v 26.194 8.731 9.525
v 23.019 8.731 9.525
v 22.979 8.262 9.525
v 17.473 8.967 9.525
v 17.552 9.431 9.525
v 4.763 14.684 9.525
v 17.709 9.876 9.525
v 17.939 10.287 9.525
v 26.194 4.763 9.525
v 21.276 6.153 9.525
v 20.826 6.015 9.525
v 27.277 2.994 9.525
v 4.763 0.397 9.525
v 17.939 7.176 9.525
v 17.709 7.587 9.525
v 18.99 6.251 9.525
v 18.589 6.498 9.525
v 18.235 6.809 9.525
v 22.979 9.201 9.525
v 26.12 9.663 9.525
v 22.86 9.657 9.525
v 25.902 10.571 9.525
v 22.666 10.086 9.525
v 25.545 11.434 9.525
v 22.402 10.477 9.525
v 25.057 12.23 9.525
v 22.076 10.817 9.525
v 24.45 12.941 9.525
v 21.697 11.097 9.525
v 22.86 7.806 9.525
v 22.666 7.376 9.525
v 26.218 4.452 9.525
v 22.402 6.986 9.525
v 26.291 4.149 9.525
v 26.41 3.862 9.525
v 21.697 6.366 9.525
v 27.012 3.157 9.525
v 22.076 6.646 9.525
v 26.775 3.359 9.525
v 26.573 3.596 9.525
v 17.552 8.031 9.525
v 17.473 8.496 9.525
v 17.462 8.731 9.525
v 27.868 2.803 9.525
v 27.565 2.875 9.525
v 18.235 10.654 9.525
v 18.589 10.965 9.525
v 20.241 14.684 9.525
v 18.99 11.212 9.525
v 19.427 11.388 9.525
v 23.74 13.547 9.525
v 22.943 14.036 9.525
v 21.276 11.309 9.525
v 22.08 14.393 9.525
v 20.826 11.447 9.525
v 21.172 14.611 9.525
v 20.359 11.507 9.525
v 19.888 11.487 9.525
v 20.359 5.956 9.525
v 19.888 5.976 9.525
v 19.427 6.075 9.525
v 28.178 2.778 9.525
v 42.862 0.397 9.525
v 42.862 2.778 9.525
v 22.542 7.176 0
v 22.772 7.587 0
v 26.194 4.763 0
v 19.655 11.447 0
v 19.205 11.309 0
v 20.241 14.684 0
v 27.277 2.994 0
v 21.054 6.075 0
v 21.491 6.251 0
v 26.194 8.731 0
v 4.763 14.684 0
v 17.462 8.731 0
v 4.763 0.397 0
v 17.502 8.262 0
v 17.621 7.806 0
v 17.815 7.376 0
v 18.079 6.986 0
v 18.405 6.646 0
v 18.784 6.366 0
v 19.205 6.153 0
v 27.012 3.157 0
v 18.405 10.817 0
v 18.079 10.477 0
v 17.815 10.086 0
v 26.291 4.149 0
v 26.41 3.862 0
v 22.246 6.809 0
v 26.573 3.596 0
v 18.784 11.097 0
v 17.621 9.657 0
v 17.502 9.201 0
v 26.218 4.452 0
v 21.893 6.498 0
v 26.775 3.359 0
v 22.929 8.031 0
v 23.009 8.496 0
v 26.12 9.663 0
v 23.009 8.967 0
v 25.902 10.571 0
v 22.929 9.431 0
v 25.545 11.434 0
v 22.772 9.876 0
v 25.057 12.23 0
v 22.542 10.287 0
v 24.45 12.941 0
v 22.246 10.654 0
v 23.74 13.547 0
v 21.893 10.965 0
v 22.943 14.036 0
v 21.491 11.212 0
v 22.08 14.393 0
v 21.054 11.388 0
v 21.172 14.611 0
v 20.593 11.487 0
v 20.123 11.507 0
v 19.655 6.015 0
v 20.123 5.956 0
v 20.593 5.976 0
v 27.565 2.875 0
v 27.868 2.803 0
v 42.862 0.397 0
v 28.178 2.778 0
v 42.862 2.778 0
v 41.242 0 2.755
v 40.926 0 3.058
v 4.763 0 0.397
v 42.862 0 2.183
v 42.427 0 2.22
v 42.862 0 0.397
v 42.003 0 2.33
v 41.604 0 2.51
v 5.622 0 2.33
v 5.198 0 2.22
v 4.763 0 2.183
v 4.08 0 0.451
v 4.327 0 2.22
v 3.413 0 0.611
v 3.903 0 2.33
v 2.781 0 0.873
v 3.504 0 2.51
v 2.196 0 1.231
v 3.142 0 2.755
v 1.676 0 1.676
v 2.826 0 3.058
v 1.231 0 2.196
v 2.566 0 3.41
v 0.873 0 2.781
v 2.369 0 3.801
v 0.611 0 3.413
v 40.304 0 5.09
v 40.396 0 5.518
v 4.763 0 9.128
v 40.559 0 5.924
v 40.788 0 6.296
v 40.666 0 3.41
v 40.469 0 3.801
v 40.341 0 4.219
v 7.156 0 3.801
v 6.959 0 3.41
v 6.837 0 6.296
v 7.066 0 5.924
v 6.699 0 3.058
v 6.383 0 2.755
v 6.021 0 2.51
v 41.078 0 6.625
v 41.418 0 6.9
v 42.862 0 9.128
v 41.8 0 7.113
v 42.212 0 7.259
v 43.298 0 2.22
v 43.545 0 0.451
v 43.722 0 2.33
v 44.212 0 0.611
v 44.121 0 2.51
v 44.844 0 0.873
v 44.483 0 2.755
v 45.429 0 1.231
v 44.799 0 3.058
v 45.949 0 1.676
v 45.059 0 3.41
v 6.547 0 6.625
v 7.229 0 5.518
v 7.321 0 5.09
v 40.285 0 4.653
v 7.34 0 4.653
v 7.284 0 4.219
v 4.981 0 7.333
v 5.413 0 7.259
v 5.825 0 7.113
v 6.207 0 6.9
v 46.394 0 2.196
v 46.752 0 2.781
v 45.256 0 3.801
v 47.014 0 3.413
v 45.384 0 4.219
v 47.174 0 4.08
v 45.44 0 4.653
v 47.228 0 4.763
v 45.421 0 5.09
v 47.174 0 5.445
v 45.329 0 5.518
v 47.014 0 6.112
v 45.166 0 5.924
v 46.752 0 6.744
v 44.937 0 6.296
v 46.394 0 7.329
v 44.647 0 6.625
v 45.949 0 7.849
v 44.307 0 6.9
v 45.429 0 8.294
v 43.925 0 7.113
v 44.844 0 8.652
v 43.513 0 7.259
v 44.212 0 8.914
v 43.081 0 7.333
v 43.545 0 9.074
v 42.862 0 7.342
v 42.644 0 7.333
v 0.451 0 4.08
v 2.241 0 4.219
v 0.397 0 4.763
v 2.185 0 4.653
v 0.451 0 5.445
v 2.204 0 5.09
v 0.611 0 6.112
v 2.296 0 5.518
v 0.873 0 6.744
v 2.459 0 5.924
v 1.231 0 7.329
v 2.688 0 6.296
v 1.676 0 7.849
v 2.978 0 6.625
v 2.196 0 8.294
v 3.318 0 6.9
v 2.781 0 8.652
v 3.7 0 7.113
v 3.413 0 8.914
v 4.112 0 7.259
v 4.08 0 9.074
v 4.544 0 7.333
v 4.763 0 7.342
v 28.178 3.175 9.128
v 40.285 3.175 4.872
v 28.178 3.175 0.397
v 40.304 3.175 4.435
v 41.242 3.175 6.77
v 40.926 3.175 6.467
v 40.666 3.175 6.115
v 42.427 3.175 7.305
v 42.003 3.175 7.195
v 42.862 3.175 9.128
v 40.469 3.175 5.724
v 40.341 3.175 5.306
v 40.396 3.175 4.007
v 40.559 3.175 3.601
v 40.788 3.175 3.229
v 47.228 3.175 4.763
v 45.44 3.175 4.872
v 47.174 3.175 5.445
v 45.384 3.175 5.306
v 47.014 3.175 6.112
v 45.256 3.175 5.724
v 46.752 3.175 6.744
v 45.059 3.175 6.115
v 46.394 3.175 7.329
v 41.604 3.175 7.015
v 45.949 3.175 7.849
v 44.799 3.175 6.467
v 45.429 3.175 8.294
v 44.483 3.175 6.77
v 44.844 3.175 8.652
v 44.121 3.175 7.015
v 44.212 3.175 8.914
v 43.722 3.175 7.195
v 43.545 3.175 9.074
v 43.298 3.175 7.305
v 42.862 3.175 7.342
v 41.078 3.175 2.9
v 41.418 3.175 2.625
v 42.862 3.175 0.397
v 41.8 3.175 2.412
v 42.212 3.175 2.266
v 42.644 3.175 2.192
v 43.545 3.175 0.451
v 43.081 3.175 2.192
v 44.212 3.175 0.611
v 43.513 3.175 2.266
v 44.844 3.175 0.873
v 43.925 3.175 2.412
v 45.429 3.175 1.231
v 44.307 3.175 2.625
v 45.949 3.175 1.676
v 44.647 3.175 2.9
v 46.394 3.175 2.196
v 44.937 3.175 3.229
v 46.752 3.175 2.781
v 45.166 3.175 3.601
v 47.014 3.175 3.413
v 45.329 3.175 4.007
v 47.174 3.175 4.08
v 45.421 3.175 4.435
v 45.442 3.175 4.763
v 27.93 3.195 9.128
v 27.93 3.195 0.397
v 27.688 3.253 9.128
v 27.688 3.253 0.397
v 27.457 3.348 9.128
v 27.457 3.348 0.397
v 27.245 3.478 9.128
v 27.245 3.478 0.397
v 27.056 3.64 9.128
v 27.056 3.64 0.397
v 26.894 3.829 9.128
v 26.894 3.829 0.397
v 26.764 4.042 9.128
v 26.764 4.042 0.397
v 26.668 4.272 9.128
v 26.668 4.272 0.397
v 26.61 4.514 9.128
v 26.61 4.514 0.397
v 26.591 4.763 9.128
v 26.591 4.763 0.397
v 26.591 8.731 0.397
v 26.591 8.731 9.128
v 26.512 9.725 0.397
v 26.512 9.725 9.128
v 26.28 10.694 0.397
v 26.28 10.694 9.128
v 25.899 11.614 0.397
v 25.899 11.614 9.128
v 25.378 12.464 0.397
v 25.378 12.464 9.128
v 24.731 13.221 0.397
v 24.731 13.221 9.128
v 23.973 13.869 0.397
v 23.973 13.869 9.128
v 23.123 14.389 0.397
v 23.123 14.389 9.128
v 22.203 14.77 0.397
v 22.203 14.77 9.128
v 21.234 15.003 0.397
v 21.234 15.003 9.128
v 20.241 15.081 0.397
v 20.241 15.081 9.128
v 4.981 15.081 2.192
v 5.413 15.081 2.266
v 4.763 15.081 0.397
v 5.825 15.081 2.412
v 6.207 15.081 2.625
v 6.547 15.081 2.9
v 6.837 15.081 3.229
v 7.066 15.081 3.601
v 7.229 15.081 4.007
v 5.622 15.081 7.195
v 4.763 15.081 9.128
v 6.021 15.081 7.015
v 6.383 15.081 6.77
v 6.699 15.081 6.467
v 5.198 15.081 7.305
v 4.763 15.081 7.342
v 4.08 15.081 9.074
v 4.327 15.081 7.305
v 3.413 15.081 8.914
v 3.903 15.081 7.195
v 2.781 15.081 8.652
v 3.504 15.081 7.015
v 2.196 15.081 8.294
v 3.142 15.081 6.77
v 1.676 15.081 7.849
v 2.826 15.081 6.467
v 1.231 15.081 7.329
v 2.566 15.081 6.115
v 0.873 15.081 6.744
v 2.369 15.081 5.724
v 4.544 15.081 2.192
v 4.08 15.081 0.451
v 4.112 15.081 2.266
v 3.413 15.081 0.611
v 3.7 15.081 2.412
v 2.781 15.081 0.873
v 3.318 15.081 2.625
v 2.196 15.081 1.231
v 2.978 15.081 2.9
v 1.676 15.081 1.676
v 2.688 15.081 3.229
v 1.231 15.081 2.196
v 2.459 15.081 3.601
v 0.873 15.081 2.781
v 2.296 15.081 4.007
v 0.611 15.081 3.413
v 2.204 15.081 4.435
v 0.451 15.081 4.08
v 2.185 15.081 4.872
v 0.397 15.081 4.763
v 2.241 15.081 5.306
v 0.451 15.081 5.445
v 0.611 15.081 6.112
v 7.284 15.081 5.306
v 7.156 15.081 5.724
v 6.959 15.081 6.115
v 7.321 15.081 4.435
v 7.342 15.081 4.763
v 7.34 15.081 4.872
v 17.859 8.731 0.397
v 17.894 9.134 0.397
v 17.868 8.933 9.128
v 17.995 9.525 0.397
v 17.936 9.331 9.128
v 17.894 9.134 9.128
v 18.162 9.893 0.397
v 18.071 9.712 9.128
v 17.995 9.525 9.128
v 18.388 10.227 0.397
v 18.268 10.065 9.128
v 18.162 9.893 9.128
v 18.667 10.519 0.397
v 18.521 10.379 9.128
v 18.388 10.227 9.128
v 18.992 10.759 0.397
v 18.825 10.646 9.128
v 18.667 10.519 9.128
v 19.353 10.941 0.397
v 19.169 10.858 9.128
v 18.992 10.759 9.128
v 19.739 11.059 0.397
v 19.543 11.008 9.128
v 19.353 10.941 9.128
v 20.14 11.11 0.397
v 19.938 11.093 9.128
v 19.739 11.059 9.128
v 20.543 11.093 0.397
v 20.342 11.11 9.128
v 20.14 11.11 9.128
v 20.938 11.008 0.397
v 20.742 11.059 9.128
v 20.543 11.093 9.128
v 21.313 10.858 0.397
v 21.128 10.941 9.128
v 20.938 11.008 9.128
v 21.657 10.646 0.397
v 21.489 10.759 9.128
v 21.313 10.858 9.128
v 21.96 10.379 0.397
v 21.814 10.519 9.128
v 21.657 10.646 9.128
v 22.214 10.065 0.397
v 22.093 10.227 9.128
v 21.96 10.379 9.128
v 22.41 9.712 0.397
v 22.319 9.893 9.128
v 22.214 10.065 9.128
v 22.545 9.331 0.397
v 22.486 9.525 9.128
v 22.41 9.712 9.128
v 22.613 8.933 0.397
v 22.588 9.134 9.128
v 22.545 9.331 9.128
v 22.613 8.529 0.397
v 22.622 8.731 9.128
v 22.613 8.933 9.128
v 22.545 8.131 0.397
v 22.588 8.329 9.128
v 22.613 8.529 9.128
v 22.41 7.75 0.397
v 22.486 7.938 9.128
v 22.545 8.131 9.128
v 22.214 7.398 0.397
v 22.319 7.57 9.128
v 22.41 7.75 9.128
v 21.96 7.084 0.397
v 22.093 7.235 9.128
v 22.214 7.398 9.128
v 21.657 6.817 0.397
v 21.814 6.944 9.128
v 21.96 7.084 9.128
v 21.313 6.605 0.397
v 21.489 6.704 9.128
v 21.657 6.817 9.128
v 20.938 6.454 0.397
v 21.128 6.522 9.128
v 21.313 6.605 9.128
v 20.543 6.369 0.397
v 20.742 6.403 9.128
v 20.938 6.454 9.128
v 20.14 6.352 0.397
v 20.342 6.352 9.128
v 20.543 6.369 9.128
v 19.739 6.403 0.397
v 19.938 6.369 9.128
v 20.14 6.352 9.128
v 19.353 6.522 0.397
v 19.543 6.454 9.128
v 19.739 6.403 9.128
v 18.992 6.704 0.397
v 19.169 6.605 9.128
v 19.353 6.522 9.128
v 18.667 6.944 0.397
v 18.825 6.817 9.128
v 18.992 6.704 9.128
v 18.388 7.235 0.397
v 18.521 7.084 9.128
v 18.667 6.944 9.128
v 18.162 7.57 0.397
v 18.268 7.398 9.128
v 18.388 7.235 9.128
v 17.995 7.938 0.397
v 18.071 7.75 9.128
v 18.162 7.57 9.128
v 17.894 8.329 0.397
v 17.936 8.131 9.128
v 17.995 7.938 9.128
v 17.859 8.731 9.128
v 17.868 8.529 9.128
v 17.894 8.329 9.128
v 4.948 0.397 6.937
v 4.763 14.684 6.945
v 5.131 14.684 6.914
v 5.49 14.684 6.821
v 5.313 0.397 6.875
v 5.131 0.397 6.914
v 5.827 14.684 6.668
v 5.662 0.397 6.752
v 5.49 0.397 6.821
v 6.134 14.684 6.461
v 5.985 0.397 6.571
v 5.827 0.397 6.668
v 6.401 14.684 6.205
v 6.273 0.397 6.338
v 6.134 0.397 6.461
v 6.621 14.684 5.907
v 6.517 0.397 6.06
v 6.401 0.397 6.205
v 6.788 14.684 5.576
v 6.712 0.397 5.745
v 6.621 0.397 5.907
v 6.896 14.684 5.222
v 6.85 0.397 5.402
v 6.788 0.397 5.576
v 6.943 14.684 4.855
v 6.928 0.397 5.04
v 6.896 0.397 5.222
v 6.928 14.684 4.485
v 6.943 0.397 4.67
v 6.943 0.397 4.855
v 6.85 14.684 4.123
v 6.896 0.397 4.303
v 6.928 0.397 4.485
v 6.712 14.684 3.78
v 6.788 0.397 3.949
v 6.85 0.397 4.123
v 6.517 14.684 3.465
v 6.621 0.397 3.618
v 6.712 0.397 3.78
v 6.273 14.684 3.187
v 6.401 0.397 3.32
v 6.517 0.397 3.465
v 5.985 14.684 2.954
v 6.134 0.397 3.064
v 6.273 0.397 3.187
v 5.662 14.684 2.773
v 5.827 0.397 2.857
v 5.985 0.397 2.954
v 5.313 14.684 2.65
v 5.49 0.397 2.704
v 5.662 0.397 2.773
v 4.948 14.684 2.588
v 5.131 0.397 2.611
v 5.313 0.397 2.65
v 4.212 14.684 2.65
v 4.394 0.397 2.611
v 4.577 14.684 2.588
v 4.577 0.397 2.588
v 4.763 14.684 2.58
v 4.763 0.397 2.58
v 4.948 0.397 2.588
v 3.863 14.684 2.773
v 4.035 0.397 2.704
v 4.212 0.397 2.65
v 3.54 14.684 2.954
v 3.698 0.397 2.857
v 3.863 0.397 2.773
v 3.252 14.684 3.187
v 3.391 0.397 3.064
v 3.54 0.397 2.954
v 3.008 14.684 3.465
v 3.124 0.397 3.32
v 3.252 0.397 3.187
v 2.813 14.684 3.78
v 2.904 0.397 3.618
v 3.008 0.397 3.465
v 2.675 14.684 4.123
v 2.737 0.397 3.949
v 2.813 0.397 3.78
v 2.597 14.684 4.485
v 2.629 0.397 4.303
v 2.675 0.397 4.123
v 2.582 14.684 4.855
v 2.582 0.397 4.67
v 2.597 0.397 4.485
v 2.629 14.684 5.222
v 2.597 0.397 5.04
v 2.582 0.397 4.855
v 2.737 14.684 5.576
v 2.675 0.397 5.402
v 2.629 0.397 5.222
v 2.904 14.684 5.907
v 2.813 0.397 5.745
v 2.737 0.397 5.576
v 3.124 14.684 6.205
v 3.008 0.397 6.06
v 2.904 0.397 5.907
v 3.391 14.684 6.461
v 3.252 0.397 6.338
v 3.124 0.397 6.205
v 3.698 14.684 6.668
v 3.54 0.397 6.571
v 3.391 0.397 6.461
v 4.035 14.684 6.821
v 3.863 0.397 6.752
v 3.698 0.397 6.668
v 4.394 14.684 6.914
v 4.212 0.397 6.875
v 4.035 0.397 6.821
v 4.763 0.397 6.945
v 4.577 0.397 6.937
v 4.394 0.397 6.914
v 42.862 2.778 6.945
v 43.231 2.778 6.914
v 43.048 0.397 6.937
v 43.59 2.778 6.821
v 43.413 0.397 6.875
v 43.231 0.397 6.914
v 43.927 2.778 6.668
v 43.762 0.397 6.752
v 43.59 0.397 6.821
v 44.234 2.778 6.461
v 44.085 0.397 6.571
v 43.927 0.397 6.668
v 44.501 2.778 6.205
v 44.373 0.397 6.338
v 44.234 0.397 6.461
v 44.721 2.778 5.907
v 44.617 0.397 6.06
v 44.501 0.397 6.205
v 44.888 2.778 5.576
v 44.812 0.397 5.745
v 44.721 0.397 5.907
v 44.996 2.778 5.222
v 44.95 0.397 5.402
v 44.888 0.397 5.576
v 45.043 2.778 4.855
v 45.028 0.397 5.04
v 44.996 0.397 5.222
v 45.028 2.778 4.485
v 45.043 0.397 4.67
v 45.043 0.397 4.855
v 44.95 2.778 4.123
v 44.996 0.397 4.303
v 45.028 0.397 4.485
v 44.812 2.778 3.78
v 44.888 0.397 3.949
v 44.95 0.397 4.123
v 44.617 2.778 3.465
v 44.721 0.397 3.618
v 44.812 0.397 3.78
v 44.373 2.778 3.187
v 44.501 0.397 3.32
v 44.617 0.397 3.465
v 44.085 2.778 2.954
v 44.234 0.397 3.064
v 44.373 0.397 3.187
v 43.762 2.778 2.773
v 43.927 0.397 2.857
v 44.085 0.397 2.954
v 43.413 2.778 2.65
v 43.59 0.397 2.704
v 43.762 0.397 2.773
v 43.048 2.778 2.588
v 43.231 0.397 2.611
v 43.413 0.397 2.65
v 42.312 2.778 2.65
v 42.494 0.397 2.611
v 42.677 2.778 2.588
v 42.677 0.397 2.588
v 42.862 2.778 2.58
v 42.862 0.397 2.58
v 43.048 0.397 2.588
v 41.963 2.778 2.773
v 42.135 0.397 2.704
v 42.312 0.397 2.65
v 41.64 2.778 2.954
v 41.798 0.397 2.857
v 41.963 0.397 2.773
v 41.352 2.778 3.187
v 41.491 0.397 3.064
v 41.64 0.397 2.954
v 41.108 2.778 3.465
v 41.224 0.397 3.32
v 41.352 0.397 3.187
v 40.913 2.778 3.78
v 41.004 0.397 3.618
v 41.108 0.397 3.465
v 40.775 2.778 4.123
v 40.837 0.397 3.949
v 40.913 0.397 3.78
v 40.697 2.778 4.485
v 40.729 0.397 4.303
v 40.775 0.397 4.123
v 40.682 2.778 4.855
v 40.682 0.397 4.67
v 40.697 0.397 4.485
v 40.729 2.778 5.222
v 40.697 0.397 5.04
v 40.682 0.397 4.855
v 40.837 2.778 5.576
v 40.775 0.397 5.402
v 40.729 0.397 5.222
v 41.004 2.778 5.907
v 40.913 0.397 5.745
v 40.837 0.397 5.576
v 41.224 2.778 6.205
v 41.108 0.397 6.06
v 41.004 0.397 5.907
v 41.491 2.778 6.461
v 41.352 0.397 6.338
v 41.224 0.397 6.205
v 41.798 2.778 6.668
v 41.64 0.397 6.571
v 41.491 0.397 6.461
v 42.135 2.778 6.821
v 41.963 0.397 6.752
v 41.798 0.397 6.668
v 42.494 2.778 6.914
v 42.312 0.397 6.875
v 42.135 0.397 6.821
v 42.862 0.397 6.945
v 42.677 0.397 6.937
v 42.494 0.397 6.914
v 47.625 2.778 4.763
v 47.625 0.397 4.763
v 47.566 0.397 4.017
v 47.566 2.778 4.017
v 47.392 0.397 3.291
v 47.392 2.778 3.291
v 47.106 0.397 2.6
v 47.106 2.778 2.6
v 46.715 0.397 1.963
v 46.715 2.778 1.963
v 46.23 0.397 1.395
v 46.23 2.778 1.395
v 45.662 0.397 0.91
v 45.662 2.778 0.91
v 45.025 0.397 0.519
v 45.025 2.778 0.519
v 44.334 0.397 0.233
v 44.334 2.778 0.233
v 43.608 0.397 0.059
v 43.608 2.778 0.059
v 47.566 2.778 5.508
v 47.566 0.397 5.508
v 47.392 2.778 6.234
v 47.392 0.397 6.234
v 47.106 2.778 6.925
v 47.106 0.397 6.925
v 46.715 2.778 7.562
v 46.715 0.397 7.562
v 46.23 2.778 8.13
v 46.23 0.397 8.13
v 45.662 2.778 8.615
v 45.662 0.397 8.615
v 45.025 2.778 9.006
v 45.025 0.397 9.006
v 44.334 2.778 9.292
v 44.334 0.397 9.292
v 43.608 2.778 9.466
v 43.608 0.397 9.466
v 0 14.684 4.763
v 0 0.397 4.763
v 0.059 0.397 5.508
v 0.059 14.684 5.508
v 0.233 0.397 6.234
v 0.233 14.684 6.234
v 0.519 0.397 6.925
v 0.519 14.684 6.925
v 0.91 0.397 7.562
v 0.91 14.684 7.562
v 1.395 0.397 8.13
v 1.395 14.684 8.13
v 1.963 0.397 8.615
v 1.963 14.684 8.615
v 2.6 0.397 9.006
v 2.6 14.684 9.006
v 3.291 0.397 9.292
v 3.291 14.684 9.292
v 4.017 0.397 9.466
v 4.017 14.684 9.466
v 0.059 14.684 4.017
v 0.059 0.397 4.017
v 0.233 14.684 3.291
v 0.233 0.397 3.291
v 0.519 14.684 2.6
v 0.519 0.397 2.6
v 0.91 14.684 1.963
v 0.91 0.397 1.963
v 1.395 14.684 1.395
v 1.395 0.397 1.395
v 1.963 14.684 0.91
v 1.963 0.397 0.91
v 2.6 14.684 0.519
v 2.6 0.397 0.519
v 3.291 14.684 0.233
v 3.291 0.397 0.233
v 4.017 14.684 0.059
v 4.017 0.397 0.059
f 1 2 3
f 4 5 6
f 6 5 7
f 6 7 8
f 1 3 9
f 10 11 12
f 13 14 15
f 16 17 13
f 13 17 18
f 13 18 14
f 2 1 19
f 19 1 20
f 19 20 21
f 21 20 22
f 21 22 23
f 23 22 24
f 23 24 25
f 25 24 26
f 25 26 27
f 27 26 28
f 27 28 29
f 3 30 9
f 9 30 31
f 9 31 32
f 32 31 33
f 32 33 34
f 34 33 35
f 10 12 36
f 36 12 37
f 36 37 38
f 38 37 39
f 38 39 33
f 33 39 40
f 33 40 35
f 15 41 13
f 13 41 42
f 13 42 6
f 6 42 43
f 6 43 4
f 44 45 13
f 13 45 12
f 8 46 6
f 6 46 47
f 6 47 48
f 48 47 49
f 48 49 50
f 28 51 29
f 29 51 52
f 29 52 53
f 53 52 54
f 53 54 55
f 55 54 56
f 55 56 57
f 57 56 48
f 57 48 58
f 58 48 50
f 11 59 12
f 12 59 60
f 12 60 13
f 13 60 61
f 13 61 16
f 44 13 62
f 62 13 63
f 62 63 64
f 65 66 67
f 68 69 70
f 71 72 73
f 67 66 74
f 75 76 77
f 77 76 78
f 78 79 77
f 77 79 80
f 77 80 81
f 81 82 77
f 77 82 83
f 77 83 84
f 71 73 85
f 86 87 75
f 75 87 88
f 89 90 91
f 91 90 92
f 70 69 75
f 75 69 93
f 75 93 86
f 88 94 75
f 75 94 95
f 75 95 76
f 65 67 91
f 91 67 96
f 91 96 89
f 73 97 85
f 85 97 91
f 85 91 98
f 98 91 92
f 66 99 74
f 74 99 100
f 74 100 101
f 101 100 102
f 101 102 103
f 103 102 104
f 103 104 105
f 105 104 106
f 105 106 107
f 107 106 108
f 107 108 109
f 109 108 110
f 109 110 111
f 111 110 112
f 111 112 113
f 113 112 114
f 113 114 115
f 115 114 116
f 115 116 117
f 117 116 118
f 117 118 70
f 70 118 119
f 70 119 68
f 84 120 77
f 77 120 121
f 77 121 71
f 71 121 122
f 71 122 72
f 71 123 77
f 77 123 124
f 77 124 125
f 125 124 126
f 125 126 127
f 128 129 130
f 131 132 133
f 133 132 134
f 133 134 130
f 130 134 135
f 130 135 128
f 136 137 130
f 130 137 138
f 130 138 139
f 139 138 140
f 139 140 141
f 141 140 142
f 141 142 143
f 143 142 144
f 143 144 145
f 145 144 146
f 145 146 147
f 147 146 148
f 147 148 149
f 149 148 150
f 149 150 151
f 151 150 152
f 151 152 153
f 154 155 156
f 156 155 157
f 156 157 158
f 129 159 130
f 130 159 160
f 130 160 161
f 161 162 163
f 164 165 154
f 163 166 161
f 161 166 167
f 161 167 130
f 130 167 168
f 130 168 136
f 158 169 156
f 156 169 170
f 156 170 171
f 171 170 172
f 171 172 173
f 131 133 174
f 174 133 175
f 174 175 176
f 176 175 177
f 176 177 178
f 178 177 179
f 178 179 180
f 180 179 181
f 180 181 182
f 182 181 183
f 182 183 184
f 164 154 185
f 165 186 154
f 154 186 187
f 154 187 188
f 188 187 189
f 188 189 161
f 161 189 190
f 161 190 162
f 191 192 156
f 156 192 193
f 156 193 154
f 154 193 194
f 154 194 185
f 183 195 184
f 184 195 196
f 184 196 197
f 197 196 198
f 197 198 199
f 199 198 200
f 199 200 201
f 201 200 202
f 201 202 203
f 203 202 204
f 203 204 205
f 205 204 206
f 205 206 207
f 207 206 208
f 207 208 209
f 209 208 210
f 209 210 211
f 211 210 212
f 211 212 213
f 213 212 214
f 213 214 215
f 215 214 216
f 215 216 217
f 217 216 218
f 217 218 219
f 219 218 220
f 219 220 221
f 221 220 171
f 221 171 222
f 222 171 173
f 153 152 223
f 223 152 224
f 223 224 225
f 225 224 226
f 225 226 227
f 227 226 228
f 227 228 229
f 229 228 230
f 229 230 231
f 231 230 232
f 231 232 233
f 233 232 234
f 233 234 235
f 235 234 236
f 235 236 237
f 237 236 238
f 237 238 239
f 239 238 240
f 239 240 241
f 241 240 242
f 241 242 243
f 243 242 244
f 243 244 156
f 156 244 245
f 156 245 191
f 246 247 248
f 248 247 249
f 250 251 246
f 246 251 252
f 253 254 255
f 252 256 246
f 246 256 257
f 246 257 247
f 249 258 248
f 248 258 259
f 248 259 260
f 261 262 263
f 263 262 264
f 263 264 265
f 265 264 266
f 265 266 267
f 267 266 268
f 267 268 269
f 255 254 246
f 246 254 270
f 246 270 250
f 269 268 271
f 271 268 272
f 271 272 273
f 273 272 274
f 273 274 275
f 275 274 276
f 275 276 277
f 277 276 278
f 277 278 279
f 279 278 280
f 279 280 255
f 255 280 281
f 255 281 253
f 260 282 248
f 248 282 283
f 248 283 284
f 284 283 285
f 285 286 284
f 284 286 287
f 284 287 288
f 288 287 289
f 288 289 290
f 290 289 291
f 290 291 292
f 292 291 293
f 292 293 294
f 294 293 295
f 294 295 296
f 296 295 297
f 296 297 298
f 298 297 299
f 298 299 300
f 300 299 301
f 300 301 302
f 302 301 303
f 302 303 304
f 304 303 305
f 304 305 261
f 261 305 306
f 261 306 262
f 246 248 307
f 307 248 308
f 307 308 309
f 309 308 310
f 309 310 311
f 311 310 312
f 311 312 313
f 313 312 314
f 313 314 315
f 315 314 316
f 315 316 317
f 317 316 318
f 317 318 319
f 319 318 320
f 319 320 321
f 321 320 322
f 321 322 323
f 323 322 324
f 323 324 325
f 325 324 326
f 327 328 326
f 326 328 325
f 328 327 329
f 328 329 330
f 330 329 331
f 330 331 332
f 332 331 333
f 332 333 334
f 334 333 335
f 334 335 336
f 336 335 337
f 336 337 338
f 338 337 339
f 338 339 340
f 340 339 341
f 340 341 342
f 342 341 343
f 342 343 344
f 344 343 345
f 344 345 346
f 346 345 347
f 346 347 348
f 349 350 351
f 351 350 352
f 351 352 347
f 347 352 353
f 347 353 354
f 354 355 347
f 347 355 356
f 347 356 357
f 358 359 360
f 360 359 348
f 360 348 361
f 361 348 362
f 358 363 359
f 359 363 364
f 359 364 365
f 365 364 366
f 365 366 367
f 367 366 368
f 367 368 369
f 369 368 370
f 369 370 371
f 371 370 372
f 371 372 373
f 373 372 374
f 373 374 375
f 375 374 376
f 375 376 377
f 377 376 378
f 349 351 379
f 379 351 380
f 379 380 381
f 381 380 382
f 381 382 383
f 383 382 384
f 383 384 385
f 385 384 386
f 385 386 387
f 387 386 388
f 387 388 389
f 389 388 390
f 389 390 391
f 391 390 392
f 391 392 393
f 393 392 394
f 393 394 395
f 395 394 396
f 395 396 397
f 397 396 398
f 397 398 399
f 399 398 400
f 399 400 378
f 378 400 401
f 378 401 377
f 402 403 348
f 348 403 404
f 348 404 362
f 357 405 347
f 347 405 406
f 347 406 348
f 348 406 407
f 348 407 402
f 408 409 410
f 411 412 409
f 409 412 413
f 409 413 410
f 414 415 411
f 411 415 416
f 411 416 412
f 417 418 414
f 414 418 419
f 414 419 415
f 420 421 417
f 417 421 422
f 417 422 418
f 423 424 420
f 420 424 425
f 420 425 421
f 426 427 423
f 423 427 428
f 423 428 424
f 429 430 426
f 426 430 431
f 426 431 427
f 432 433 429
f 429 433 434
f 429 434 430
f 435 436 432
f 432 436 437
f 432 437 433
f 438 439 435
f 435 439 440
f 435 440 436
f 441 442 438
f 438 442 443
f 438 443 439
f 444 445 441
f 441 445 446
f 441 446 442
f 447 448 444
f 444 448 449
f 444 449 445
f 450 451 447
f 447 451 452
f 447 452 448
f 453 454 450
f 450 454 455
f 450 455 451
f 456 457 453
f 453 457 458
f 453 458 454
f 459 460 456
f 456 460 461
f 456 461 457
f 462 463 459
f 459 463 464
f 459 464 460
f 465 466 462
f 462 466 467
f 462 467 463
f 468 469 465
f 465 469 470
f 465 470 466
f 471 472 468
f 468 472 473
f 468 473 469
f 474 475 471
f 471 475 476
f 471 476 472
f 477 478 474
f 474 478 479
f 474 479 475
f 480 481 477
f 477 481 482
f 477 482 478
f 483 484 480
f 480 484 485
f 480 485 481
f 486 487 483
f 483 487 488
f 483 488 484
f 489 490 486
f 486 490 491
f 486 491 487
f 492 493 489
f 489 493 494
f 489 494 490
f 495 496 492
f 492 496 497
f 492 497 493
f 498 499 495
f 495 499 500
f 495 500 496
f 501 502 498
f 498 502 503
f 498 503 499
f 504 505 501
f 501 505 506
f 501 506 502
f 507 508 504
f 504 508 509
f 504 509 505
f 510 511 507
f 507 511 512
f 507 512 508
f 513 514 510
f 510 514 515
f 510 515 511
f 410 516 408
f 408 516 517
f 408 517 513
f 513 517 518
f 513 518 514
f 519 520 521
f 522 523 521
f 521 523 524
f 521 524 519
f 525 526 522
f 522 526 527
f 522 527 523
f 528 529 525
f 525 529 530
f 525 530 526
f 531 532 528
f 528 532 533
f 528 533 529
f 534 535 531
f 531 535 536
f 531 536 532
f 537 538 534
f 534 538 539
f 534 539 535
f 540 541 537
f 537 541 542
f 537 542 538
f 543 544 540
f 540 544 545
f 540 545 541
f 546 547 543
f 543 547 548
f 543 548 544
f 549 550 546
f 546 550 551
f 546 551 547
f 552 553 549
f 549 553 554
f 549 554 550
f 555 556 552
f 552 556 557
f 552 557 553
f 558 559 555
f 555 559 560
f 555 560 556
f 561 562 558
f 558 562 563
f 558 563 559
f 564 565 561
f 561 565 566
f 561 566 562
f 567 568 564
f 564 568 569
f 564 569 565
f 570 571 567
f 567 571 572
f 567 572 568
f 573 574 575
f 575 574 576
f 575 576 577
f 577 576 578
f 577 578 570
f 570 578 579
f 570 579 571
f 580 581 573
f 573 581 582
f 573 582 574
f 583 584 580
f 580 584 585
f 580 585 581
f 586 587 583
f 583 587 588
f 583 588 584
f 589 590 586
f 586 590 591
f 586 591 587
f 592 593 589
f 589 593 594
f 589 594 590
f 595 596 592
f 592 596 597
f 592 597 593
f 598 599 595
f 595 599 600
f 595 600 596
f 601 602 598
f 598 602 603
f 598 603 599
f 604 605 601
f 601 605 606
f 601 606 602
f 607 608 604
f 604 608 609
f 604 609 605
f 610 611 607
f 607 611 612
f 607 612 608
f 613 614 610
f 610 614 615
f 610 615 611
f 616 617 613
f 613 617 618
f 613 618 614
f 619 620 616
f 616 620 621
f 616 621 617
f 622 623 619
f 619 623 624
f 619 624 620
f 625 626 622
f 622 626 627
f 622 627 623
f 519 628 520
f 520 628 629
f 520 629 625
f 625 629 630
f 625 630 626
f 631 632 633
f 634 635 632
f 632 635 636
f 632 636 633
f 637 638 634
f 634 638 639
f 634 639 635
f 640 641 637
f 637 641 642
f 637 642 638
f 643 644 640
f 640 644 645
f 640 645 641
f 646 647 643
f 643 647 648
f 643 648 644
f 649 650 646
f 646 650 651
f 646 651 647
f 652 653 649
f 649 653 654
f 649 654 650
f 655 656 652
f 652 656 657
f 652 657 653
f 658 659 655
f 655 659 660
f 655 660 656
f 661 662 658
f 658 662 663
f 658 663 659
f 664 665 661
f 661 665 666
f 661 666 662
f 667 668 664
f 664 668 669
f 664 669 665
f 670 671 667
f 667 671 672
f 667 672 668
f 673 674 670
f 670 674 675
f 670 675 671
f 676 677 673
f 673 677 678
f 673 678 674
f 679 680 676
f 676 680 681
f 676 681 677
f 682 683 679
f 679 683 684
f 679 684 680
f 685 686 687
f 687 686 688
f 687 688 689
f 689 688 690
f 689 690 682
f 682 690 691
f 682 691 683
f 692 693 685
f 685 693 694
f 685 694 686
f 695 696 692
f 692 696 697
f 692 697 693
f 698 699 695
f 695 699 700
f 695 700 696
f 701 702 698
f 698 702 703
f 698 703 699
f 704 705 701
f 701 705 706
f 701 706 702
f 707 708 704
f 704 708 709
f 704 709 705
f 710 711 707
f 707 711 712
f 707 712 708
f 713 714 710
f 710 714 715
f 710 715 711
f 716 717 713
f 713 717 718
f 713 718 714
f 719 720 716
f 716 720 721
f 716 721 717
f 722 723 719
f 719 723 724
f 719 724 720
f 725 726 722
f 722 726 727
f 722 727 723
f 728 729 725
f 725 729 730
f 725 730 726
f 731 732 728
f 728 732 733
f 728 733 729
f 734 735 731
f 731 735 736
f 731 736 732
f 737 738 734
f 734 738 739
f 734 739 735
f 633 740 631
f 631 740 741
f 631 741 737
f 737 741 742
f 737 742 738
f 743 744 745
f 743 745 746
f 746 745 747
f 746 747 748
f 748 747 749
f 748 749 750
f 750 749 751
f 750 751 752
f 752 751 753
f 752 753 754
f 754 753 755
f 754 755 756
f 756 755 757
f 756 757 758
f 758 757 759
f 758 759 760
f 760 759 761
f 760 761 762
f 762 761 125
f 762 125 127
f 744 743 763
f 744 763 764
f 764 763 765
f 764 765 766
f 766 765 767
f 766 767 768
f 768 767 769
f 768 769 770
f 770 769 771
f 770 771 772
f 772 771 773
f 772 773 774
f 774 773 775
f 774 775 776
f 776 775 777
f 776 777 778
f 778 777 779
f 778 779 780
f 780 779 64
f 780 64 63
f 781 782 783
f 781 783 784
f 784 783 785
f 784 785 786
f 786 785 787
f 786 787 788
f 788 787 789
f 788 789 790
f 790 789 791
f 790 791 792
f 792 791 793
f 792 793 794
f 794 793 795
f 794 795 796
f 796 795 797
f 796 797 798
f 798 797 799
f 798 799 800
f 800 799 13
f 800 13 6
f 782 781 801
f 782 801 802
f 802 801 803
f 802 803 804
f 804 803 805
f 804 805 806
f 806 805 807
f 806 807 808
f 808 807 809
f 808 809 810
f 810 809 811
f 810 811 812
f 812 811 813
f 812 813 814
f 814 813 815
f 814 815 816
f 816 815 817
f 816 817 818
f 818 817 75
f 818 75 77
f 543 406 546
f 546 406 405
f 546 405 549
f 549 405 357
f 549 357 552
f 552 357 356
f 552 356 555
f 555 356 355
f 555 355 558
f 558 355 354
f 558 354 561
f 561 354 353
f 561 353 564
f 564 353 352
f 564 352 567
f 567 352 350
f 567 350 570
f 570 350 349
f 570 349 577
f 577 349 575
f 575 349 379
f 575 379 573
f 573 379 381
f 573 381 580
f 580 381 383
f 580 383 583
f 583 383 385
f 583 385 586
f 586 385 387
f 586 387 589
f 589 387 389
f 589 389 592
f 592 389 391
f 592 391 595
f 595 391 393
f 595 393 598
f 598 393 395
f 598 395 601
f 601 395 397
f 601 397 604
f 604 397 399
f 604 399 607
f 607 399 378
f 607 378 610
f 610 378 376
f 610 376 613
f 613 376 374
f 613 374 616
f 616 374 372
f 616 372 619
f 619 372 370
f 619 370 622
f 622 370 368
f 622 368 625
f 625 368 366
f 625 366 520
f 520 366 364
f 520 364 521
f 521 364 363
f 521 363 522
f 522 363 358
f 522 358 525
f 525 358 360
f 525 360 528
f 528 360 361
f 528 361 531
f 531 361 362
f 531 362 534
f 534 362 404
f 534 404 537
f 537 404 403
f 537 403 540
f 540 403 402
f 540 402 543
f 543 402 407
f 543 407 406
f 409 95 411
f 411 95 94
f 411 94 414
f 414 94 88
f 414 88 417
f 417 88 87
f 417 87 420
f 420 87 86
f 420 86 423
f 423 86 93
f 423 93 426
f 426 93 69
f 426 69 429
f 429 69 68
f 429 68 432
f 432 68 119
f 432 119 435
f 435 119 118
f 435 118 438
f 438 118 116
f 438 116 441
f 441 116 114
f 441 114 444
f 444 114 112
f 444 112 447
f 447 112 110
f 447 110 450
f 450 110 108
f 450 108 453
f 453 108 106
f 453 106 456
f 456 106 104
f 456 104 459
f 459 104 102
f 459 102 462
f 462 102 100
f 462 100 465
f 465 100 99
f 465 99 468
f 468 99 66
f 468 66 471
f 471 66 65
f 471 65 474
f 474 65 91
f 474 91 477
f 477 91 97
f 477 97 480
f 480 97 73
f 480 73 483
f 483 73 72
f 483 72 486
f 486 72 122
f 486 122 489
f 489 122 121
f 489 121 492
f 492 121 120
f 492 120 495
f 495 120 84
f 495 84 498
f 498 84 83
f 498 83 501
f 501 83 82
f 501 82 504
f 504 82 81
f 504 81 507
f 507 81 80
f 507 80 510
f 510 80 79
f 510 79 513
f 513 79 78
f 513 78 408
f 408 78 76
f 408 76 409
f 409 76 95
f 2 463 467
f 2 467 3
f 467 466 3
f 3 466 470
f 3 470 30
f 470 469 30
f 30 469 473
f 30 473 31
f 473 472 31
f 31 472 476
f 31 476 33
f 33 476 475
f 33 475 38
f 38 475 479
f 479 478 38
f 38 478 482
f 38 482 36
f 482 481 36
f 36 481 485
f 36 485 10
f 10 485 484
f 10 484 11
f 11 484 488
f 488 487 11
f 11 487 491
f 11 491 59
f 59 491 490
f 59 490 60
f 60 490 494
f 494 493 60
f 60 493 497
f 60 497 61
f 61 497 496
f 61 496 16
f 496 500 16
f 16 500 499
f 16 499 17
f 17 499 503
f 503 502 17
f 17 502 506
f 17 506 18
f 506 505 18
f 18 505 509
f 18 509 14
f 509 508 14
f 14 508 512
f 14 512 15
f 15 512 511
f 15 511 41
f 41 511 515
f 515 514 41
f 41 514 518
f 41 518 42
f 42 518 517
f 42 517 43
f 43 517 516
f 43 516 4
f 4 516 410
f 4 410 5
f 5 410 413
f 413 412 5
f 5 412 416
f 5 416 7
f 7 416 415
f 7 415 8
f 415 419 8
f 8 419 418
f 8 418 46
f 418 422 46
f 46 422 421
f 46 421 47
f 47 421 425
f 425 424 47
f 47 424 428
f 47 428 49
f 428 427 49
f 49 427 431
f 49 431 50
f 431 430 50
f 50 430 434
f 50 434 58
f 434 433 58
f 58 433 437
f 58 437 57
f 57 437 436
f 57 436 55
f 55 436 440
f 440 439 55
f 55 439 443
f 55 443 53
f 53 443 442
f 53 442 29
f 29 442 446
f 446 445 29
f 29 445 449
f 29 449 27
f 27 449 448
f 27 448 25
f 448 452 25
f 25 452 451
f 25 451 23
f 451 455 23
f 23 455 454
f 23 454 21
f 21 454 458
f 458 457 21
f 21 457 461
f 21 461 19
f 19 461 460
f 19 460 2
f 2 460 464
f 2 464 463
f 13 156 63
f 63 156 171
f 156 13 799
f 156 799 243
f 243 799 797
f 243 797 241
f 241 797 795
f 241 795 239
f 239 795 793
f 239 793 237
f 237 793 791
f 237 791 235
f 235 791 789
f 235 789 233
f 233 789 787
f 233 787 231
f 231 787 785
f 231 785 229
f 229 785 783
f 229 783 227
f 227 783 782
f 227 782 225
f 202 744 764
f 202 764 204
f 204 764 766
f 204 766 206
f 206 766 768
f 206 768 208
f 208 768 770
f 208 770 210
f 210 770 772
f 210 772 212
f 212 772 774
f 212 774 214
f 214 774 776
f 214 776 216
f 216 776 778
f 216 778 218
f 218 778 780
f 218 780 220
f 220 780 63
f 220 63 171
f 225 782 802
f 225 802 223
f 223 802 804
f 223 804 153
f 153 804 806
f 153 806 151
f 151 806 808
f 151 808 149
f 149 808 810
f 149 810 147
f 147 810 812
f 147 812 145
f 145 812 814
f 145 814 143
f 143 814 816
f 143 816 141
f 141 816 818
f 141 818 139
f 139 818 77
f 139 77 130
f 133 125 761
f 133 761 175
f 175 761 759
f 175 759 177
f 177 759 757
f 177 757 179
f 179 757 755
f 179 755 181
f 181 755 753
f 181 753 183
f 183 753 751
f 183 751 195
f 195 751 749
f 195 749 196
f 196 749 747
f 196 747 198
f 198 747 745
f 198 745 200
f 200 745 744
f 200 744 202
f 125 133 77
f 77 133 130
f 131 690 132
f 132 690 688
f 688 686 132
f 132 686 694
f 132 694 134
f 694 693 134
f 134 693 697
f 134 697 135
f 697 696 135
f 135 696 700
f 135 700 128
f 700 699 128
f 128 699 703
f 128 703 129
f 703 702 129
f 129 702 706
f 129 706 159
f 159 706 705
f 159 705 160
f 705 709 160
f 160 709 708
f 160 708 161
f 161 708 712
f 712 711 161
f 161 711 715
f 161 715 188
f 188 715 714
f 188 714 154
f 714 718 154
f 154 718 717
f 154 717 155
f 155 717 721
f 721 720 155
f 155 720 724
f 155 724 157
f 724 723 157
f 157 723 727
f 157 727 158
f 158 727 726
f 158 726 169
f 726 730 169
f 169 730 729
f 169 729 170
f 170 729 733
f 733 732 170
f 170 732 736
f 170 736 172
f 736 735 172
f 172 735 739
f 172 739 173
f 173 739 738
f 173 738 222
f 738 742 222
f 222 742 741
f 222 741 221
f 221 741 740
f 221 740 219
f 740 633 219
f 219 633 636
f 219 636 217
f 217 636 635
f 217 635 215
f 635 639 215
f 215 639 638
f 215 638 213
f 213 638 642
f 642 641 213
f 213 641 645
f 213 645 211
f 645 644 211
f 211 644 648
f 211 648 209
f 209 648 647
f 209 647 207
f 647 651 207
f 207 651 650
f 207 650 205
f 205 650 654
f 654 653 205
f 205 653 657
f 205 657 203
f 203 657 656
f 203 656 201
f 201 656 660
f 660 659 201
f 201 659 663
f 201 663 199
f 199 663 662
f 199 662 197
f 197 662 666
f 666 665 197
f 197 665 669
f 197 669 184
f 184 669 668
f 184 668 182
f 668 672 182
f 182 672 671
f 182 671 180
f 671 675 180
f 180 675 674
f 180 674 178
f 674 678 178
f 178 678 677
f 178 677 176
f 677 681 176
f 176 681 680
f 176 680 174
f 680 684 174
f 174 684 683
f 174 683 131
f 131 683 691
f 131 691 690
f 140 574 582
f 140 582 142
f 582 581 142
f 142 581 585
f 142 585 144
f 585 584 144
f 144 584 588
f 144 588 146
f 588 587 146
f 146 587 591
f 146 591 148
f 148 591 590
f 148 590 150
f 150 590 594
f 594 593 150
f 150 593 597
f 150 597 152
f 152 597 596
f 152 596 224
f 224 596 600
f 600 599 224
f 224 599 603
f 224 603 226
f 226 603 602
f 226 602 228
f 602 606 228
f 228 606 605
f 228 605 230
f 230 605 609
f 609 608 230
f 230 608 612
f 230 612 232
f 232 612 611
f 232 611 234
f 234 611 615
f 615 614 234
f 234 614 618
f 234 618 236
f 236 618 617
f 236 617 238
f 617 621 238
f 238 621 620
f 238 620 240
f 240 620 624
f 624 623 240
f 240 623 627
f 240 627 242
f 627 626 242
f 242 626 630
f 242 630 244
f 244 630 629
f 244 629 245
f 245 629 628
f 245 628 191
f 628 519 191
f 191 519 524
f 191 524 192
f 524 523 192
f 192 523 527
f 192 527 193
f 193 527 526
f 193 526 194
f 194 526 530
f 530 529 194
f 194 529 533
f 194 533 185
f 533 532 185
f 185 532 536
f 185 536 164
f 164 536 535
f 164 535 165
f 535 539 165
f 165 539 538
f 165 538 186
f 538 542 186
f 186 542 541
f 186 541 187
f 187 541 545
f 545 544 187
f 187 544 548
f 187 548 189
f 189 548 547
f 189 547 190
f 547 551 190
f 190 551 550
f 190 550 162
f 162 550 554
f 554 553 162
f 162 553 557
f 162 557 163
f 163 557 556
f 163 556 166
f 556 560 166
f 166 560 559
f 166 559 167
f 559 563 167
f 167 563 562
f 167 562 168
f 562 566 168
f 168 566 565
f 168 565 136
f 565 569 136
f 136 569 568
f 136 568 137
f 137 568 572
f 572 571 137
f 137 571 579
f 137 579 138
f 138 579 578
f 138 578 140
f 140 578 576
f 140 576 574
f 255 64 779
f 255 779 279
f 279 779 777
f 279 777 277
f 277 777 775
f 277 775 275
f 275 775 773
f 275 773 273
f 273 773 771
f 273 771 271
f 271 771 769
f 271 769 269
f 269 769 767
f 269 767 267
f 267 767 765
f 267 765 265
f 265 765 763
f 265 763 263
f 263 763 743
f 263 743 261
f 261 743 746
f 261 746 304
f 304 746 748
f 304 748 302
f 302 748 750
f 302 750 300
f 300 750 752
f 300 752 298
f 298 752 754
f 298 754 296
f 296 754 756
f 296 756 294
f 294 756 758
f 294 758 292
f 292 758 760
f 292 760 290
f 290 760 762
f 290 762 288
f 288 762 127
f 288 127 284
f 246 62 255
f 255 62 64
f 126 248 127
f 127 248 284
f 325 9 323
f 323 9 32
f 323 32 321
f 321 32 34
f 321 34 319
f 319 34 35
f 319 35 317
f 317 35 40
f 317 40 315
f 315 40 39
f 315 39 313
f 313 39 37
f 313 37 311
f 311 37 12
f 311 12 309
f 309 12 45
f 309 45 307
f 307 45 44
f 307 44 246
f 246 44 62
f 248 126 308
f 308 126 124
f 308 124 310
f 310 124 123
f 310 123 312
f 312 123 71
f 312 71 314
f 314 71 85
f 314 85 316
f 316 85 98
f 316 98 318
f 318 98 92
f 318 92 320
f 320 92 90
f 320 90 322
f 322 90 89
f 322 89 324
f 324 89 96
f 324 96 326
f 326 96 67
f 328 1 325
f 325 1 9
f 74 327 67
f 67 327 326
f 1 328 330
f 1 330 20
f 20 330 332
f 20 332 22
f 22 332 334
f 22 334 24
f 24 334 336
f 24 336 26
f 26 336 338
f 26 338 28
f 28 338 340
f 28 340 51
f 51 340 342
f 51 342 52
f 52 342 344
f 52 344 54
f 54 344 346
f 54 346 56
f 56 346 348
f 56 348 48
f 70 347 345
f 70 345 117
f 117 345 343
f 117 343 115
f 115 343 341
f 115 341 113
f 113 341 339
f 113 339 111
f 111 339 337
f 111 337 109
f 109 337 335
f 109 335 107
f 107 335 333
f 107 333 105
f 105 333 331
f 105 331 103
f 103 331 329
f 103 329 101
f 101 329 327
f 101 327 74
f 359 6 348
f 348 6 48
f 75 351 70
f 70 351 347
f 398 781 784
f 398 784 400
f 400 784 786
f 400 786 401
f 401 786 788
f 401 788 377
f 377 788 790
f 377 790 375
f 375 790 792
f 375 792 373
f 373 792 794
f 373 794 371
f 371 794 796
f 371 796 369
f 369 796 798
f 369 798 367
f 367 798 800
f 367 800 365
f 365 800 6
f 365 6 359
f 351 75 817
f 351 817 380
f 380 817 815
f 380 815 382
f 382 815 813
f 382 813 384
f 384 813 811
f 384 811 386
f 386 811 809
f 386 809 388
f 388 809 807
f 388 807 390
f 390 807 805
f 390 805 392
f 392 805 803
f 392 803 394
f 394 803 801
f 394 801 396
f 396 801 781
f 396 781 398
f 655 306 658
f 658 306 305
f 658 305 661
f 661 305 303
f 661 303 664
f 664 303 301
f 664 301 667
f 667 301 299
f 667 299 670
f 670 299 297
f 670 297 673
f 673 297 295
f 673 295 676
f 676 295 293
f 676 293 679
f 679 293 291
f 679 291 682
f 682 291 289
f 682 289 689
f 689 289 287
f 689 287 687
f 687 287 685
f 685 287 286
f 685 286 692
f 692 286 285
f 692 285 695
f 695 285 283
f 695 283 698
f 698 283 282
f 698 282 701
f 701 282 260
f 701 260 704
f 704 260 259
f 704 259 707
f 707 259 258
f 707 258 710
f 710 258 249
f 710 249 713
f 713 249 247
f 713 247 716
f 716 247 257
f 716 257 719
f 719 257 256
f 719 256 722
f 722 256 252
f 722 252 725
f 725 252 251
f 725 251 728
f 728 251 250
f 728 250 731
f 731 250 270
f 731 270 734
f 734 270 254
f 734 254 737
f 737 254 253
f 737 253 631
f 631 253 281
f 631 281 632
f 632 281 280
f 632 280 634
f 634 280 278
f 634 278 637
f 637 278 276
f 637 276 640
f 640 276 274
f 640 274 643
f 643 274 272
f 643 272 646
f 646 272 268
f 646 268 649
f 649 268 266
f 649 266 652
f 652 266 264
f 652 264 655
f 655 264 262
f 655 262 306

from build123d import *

# Parameters (mm, degrees)
SKETCH1_R               = 2.38125
BOSS_EXTRUDE1_DEPTH     = 9.525
CUT_EXTRUDE1_DEPTH      = 51.855779923
CUT_EXTRUDE1_DEPTH_BACK = 51.855779923
SKETCH2_R               = 2.1828125
FILLET1_R               = 4.7625
CHAMFER1_SIZE           = 0.396875


with BuildPart() as part:
    # Sketch1 → Boss-Extrude1 (new body)
    with BuildSketch(Plane.XY):
        with BuildLine():
            Line((0, 0), (0, 15.08125))
            Line((0, 15.08125), (20.240625, 15.08125))
            ThreePointArc((20.240625, 15.08125), (24.730753061, 13.221378061), (26.590625, 8.73125))
            Line((26.590625, 8.73125), (26.590625, 4.7625))
            ThreePointArc((26.590625, 4.7625), (27.055592985, 3.639967985), (28.178125, 3.175))
            Line((28.178125, 3.175), (47.625, 3.175))
            Line((47.625, 3.175), (47.625, 0))
            Line((47.625, 0), (0, 0))
        make_face()
        with Locations(Location((20.240625, 8.73125, 0), (0, 0, 180))):
            Circle(SKETCH1_R, mode=Mode.SUBTRACT)
    extrude(amount=BOSS_EXTRUDE1_DEPTH)

    # Sketch2 → Cut-Extrude1 (cut, two sides: drawn at the far end of the back side and taken through both)
    with BuildSketch(Plane(origin=(0, 15.08125, 0), x_dir=(1, 0, 0), z_dir=(0, 1, 0)).offset(-CUT_EXTRUDE1_DEPTH_BACK)):
        with Locations(Location((4.7625, -4.7625, 0), (0, 0, 270))):
            Circle(SKETCH2_R)
        with Locations(Location((42.8625, -4.7625, 0), (0, 0, 270))):
            Circle(SKETCH2_R)
    extrude(amount=CUT_EXTRUDE1_DEPTH + CUT_EXTRUDE1_DEPTH_BACK, mode=Mode.SUBTRACT)

    # Fillet1
    fillet1_edges = [part.edges().sort_by_distance(p)[0] for p in [
        (47.625, 1.5875, 9.525),
        (47.625, 1.5875, 0),
        (0, 7.540625, 0),
        (0, 7.540625, 9.525),
    ]]
    fillet(fillet1_edges, radius=FILLET1_R - 0.0001)  # a hair under: the kernel refuses the full size

    # Chamfer1
    chamfer1_edges = [part.edges().sort_by_distance(p)[0] for p in [
        (27.055592985, 3.639967985, 0),
        (27.055592985, 3.639967985, 9.525),
        (26.590625, 6.746875, 9.525),
        (22.621875, 8.73125, 0),
        (22.621875, 8.73125, 9.525),
        (24.730753061, 13.221378061, 9.525),
        (12.5015125, 15.08125, 9.525),
        (4.7625, 0, 2.5796875),
        (4.7625, 15.08125, 2.5796875),
        (42.8625, 0, 2.5796875),
        (42.8625, 3.175, 2.5796875),
        (23.8125, 0, 9.525),
        (35.5203625, 3.175, 9.525),
        (35.5203625, 3.175, 0),
        (46.230125335, 3.175, 1.394874665),
        (46.230125335, 3.175, 8.130125335),
        (23.8125, 0, 0),
        (1.394874665, 0, 8.130125335),
        (1.394874665, 0, 1.394874665),
        (46.230125335, 0, 1.394874665),
        (46.230125335, 0, 8.130125335),
        (1.394874665, 15.08125, 8.130125335),
        (1.394874665, 15.08125, 1.394874665),
        (12.5015125, 15.08125, 0),
        (24.730753061, 13.221378061, 0),
        (26.590625, 6.746875, 0),
    ]]
    chamfer(chamfer1_edges, length=CHAMFER1_SIZE)


solid = part.part
